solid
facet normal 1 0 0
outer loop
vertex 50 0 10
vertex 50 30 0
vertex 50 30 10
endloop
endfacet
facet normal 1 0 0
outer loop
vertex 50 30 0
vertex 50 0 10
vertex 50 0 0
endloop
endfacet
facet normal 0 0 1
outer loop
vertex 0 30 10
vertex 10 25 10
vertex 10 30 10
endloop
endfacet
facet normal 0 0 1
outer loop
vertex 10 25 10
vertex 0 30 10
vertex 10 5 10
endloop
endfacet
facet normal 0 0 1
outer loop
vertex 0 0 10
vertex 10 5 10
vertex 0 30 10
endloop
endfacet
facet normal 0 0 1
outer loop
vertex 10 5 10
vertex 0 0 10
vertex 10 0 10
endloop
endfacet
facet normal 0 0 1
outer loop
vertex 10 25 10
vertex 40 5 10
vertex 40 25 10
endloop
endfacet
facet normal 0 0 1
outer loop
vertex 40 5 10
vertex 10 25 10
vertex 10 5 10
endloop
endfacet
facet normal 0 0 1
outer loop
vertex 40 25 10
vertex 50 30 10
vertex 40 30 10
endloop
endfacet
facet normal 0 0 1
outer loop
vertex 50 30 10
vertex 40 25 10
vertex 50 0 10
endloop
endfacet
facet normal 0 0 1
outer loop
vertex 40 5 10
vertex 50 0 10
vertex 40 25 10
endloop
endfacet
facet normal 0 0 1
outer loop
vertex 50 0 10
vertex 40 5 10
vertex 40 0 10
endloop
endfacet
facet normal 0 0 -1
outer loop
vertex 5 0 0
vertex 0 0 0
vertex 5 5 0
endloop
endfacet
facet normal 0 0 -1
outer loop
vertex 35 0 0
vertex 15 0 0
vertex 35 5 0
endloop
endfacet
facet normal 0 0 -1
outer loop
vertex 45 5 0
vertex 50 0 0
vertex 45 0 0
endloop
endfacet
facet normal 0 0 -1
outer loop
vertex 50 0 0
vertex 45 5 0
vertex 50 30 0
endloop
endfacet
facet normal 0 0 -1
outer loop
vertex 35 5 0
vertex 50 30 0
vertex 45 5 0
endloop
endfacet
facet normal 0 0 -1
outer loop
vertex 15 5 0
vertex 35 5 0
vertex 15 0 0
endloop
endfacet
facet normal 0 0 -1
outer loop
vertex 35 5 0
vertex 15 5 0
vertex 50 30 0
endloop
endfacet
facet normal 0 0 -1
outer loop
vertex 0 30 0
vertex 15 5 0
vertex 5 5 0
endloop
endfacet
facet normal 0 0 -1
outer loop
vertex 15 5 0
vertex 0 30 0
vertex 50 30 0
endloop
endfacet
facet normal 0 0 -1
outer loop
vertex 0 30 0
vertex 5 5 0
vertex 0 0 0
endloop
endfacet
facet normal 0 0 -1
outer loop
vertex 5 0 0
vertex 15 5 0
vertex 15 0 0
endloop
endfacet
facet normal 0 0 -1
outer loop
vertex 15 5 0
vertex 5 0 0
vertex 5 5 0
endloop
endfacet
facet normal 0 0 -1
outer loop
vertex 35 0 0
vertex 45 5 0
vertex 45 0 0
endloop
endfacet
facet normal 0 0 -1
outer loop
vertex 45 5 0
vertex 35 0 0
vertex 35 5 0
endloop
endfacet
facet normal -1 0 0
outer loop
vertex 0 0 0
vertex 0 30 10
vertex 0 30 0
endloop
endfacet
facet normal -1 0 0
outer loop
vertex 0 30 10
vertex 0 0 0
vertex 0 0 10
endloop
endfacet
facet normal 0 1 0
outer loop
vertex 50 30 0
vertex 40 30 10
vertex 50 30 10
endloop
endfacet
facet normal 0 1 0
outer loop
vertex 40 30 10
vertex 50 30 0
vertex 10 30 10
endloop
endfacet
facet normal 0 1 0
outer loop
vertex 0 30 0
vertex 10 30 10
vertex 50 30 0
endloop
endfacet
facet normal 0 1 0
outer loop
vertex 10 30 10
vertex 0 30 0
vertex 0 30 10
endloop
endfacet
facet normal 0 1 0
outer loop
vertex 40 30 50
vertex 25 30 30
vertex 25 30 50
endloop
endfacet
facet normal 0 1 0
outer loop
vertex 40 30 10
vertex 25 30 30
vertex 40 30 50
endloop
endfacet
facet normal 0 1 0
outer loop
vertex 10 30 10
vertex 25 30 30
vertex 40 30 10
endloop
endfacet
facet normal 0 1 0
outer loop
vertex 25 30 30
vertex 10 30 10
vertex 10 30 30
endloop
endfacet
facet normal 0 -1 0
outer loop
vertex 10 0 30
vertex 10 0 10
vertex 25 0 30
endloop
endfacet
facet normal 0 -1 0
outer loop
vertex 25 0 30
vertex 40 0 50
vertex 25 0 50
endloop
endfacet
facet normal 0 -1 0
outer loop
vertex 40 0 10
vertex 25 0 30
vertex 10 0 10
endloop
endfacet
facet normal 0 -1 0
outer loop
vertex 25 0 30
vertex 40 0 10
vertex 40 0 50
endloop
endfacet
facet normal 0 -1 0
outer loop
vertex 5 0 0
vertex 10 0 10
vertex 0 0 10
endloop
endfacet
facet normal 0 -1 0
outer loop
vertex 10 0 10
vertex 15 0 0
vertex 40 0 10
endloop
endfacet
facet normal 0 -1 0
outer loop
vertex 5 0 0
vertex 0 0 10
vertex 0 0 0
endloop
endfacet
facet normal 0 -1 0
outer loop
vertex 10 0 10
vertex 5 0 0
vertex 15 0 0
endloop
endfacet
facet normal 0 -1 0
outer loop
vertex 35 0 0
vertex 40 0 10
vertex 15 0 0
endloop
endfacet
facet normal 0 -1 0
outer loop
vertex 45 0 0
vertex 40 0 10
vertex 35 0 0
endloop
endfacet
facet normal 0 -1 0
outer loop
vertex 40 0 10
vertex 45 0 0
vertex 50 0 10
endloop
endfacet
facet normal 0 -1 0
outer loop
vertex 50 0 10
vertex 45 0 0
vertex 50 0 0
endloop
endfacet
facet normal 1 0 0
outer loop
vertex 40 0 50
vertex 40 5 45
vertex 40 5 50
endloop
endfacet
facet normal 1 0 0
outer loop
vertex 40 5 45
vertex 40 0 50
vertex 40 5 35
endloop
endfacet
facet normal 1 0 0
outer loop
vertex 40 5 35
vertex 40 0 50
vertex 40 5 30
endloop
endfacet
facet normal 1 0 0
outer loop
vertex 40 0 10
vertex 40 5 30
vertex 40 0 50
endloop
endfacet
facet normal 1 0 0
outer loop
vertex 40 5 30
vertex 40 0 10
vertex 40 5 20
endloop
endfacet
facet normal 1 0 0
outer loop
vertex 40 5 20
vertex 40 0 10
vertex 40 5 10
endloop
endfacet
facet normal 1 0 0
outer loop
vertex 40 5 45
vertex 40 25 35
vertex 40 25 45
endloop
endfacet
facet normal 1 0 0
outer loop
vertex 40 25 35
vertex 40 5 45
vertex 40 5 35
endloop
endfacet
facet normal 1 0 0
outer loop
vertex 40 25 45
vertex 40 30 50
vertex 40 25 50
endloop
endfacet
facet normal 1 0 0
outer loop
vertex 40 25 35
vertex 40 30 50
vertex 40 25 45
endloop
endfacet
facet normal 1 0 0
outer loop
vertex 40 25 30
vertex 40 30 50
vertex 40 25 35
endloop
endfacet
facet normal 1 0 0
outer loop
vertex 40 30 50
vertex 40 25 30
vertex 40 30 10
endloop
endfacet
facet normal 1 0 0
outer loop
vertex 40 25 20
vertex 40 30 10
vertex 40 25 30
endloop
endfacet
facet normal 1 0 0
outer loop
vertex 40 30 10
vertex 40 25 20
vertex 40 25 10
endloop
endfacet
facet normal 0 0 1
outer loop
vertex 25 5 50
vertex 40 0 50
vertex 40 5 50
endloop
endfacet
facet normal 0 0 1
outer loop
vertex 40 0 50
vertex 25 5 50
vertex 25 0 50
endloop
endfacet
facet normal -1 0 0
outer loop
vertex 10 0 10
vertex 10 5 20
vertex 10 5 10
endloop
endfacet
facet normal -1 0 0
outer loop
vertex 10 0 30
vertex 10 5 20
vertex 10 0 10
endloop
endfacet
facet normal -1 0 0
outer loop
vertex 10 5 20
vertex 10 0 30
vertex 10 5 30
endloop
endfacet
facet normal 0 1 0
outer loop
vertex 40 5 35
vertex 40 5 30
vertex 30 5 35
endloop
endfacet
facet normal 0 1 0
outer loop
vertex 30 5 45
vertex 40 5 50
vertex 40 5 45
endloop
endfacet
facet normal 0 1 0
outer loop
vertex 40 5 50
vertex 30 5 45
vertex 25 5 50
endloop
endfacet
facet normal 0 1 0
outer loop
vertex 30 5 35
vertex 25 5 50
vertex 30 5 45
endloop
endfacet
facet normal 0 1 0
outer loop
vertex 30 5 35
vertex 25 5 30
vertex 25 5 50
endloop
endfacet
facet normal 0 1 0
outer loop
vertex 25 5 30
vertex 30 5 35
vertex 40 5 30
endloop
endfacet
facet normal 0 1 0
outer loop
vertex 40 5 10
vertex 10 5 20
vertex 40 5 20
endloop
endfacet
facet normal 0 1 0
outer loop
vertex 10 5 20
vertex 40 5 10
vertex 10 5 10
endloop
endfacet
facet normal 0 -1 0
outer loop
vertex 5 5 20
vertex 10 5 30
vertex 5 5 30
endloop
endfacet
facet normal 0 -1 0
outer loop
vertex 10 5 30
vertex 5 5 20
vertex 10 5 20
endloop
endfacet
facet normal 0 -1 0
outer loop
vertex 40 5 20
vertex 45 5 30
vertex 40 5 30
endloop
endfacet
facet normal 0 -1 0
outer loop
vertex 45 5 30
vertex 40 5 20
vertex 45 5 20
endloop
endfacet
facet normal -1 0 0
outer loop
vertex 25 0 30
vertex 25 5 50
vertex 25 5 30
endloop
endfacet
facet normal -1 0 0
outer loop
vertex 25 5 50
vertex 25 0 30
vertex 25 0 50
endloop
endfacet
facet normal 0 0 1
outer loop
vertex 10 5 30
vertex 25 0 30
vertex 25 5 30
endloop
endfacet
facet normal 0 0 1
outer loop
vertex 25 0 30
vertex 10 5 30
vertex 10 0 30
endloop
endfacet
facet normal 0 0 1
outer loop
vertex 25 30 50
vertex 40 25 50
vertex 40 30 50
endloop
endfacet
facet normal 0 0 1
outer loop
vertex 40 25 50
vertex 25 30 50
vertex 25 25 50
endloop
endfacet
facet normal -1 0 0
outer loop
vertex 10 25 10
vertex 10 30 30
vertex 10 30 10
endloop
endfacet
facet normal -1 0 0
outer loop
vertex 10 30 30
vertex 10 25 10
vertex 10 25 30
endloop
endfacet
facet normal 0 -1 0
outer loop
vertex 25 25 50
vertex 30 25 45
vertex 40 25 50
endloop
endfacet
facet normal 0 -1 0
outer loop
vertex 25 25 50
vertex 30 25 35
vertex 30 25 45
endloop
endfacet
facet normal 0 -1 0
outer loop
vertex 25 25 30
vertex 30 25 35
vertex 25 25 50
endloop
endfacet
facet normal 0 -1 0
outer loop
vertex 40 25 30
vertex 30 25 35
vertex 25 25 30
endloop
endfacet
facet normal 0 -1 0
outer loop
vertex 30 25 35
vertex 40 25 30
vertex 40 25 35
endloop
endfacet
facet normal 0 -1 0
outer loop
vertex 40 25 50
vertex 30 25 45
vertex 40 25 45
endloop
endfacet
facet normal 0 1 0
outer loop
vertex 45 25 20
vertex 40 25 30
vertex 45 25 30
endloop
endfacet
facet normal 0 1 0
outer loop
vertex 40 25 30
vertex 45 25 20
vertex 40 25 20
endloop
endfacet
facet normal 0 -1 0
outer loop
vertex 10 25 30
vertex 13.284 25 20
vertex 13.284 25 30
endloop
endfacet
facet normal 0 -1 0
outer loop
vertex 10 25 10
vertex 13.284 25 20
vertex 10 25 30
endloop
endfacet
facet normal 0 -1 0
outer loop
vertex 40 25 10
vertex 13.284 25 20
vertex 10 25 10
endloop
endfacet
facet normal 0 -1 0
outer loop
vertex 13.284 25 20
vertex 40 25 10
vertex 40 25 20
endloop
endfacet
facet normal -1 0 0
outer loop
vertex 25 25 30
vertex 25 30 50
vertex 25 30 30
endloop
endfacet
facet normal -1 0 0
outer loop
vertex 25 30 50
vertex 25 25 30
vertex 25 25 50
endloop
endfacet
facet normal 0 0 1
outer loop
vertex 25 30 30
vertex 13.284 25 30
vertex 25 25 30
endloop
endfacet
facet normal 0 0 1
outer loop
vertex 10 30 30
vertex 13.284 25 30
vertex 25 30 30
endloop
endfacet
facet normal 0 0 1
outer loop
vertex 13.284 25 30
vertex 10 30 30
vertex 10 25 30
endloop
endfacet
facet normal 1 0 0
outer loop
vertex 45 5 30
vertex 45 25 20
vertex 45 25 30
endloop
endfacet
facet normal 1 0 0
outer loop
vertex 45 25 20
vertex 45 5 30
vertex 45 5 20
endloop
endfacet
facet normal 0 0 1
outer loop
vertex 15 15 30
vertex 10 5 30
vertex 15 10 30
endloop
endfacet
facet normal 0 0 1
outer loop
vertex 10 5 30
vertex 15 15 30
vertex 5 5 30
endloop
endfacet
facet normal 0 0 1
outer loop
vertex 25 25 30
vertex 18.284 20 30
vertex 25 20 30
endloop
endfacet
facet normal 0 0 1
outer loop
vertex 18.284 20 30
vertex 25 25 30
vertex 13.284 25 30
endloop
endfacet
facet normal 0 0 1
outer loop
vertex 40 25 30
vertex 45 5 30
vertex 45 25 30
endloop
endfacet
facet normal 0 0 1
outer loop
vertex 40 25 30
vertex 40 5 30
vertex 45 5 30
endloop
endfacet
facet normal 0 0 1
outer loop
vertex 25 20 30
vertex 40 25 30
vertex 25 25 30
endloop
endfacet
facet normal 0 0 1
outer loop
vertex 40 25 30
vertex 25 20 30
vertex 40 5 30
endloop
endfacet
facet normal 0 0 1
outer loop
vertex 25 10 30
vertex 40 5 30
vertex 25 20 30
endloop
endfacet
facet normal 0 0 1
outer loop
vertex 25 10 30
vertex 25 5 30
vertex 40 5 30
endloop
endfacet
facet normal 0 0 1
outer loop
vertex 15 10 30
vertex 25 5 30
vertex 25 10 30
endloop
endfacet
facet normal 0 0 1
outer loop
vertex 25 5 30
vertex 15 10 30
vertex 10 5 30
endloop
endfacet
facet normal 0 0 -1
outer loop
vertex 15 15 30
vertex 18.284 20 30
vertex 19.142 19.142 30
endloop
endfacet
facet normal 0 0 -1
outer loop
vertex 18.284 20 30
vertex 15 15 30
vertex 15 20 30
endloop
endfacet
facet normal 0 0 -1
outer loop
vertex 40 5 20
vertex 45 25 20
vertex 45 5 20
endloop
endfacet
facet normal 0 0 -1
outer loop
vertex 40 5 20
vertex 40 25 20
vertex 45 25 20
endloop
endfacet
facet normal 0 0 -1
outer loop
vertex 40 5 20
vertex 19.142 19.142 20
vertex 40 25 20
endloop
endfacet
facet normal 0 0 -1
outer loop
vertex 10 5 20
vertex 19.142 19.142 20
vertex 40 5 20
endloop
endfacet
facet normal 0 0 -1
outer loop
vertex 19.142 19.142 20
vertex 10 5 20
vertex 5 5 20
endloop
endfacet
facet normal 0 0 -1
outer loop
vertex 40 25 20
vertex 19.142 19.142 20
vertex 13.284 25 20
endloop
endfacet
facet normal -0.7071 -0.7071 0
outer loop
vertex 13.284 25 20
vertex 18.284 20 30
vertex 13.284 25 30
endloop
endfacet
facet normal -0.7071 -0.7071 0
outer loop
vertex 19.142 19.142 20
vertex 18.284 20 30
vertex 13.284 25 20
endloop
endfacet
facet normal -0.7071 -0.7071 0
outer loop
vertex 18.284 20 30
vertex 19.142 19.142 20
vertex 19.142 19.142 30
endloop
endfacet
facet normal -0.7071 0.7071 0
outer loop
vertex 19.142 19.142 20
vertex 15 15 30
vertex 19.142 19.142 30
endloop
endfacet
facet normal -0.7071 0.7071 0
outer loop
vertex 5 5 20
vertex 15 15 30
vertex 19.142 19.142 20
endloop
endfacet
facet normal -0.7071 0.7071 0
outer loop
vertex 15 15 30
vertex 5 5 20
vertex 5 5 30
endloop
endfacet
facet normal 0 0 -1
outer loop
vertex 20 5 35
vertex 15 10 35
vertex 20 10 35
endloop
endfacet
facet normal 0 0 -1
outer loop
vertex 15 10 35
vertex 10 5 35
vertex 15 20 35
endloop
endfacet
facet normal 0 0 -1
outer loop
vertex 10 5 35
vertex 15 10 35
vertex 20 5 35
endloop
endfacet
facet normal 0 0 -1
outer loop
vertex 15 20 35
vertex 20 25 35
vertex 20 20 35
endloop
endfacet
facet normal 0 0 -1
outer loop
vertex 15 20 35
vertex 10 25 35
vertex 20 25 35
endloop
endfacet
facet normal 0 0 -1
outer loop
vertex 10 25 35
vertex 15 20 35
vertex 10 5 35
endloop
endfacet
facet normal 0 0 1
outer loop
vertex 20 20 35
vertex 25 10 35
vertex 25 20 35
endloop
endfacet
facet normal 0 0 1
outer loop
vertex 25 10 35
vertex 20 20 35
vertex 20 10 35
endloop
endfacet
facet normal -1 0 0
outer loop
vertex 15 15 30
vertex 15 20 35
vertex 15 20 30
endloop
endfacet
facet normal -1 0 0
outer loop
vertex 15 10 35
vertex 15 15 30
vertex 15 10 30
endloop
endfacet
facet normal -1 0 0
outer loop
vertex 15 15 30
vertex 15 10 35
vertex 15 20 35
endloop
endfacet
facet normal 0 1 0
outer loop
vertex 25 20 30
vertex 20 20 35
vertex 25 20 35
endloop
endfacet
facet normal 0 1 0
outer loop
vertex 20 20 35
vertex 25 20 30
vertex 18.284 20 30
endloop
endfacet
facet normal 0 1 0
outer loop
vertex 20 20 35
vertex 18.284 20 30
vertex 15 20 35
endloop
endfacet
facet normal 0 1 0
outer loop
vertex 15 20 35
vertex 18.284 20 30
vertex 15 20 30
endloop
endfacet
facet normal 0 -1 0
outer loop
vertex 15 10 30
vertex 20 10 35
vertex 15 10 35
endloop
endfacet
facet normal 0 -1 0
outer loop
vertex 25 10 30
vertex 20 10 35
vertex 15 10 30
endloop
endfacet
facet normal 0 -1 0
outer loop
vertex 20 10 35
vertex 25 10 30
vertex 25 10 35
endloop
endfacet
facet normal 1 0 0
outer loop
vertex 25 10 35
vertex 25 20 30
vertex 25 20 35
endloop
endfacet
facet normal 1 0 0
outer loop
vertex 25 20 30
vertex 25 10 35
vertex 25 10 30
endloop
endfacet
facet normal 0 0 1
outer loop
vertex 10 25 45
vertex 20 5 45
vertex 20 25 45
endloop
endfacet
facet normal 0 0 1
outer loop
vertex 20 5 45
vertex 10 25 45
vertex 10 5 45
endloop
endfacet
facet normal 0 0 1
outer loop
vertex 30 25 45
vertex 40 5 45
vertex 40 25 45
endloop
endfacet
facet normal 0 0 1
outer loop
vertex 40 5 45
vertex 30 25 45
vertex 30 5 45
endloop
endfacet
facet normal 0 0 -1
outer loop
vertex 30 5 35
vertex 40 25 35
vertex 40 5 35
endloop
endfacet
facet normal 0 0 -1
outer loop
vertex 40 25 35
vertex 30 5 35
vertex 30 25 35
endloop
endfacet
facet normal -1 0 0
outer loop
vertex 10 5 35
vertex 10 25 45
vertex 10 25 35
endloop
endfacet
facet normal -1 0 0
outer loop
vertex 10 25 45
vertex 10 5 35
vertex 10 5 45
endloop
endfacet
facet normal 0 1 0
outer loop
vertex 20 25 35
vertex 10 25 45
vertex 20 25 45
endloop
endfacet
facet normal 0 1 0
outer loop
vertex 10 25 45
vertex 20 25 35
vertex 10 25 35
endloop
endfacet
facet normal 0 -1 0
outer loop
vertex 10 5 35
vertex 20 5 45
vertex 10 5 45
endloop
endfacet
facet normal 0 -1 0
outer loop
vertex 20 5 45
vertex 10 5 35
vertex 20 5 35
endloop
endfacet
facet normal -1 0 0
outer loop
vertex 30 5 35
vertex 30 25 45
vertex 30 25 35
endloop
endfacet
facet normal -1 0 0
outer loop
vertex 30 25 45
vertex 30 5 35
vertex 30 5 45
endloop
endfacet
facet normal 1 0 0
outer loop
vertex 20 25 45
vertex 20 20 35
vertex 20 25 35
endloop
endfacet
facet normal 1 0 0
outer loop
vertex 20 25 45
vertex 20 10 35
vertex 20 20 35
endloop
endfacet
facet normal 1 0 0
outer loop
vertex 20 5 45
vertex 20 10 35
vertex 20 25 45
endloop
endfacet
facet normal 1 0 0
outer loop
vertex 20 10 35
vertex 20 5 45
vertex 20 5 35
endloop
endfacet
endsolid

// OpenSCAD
// Base Block
module base_block() {
    difference() {
        cube([50, 30, 10]); // Main block
        translate([5, 0, -5]) cube([10, 5, 5]); // Left protrusion
        translate([35, 0, -5]) cube([10, 5, 5]); // Right protrusion
    }
}

// Side Plate
module side_plate() {
    difference() {
        cube([30, 5, 40]); // Main plate
        translate([0, 0, 20]) cube([15, 5, 20]); // Cutout for L-shape
    }
}

// Connector Block
module connector_block() {
    difference() {
        cube([30, 20, 10]); // Main block
        translate([10, 0, 0]) cube([10, 20, 10]); // U-shaped cutout
    }
}

// Support Block
module support_block() {
    difference() {
        cube([40, 20, 10]); // Main block
        translate([0, 0, 0]) rotate([0, 0, 45]) cube([20, 20, 10]); // Slanted cut
    }
}

// Spacer Block
module spacer_block() {
    difference() {
        cube([20, 10, 5]); // Main block
        translate([10, 0, 0]) cube([10, 10, 5]); // Notch for stepped appearance
    }
}

// Assembly
module assembly() {
    // Layer 5: Base Block
    translate([0, 0, 0]) base_block();

    // Layer 4: Side Plates
    translate([10, 0, 10]) side_plate();
    translate([10, 25, 10]) side_plate();

    // Layer 3: Support Block
    translate([5, 5, 20]) support_block();

    // Layer 2: Spacer Block
    translate([15, 10, 30]) spacer_block();

    // Layer 1: Connector Block
    translate([10, 5, 35]) connector_block();
}

// Render the assembly
assembly();
